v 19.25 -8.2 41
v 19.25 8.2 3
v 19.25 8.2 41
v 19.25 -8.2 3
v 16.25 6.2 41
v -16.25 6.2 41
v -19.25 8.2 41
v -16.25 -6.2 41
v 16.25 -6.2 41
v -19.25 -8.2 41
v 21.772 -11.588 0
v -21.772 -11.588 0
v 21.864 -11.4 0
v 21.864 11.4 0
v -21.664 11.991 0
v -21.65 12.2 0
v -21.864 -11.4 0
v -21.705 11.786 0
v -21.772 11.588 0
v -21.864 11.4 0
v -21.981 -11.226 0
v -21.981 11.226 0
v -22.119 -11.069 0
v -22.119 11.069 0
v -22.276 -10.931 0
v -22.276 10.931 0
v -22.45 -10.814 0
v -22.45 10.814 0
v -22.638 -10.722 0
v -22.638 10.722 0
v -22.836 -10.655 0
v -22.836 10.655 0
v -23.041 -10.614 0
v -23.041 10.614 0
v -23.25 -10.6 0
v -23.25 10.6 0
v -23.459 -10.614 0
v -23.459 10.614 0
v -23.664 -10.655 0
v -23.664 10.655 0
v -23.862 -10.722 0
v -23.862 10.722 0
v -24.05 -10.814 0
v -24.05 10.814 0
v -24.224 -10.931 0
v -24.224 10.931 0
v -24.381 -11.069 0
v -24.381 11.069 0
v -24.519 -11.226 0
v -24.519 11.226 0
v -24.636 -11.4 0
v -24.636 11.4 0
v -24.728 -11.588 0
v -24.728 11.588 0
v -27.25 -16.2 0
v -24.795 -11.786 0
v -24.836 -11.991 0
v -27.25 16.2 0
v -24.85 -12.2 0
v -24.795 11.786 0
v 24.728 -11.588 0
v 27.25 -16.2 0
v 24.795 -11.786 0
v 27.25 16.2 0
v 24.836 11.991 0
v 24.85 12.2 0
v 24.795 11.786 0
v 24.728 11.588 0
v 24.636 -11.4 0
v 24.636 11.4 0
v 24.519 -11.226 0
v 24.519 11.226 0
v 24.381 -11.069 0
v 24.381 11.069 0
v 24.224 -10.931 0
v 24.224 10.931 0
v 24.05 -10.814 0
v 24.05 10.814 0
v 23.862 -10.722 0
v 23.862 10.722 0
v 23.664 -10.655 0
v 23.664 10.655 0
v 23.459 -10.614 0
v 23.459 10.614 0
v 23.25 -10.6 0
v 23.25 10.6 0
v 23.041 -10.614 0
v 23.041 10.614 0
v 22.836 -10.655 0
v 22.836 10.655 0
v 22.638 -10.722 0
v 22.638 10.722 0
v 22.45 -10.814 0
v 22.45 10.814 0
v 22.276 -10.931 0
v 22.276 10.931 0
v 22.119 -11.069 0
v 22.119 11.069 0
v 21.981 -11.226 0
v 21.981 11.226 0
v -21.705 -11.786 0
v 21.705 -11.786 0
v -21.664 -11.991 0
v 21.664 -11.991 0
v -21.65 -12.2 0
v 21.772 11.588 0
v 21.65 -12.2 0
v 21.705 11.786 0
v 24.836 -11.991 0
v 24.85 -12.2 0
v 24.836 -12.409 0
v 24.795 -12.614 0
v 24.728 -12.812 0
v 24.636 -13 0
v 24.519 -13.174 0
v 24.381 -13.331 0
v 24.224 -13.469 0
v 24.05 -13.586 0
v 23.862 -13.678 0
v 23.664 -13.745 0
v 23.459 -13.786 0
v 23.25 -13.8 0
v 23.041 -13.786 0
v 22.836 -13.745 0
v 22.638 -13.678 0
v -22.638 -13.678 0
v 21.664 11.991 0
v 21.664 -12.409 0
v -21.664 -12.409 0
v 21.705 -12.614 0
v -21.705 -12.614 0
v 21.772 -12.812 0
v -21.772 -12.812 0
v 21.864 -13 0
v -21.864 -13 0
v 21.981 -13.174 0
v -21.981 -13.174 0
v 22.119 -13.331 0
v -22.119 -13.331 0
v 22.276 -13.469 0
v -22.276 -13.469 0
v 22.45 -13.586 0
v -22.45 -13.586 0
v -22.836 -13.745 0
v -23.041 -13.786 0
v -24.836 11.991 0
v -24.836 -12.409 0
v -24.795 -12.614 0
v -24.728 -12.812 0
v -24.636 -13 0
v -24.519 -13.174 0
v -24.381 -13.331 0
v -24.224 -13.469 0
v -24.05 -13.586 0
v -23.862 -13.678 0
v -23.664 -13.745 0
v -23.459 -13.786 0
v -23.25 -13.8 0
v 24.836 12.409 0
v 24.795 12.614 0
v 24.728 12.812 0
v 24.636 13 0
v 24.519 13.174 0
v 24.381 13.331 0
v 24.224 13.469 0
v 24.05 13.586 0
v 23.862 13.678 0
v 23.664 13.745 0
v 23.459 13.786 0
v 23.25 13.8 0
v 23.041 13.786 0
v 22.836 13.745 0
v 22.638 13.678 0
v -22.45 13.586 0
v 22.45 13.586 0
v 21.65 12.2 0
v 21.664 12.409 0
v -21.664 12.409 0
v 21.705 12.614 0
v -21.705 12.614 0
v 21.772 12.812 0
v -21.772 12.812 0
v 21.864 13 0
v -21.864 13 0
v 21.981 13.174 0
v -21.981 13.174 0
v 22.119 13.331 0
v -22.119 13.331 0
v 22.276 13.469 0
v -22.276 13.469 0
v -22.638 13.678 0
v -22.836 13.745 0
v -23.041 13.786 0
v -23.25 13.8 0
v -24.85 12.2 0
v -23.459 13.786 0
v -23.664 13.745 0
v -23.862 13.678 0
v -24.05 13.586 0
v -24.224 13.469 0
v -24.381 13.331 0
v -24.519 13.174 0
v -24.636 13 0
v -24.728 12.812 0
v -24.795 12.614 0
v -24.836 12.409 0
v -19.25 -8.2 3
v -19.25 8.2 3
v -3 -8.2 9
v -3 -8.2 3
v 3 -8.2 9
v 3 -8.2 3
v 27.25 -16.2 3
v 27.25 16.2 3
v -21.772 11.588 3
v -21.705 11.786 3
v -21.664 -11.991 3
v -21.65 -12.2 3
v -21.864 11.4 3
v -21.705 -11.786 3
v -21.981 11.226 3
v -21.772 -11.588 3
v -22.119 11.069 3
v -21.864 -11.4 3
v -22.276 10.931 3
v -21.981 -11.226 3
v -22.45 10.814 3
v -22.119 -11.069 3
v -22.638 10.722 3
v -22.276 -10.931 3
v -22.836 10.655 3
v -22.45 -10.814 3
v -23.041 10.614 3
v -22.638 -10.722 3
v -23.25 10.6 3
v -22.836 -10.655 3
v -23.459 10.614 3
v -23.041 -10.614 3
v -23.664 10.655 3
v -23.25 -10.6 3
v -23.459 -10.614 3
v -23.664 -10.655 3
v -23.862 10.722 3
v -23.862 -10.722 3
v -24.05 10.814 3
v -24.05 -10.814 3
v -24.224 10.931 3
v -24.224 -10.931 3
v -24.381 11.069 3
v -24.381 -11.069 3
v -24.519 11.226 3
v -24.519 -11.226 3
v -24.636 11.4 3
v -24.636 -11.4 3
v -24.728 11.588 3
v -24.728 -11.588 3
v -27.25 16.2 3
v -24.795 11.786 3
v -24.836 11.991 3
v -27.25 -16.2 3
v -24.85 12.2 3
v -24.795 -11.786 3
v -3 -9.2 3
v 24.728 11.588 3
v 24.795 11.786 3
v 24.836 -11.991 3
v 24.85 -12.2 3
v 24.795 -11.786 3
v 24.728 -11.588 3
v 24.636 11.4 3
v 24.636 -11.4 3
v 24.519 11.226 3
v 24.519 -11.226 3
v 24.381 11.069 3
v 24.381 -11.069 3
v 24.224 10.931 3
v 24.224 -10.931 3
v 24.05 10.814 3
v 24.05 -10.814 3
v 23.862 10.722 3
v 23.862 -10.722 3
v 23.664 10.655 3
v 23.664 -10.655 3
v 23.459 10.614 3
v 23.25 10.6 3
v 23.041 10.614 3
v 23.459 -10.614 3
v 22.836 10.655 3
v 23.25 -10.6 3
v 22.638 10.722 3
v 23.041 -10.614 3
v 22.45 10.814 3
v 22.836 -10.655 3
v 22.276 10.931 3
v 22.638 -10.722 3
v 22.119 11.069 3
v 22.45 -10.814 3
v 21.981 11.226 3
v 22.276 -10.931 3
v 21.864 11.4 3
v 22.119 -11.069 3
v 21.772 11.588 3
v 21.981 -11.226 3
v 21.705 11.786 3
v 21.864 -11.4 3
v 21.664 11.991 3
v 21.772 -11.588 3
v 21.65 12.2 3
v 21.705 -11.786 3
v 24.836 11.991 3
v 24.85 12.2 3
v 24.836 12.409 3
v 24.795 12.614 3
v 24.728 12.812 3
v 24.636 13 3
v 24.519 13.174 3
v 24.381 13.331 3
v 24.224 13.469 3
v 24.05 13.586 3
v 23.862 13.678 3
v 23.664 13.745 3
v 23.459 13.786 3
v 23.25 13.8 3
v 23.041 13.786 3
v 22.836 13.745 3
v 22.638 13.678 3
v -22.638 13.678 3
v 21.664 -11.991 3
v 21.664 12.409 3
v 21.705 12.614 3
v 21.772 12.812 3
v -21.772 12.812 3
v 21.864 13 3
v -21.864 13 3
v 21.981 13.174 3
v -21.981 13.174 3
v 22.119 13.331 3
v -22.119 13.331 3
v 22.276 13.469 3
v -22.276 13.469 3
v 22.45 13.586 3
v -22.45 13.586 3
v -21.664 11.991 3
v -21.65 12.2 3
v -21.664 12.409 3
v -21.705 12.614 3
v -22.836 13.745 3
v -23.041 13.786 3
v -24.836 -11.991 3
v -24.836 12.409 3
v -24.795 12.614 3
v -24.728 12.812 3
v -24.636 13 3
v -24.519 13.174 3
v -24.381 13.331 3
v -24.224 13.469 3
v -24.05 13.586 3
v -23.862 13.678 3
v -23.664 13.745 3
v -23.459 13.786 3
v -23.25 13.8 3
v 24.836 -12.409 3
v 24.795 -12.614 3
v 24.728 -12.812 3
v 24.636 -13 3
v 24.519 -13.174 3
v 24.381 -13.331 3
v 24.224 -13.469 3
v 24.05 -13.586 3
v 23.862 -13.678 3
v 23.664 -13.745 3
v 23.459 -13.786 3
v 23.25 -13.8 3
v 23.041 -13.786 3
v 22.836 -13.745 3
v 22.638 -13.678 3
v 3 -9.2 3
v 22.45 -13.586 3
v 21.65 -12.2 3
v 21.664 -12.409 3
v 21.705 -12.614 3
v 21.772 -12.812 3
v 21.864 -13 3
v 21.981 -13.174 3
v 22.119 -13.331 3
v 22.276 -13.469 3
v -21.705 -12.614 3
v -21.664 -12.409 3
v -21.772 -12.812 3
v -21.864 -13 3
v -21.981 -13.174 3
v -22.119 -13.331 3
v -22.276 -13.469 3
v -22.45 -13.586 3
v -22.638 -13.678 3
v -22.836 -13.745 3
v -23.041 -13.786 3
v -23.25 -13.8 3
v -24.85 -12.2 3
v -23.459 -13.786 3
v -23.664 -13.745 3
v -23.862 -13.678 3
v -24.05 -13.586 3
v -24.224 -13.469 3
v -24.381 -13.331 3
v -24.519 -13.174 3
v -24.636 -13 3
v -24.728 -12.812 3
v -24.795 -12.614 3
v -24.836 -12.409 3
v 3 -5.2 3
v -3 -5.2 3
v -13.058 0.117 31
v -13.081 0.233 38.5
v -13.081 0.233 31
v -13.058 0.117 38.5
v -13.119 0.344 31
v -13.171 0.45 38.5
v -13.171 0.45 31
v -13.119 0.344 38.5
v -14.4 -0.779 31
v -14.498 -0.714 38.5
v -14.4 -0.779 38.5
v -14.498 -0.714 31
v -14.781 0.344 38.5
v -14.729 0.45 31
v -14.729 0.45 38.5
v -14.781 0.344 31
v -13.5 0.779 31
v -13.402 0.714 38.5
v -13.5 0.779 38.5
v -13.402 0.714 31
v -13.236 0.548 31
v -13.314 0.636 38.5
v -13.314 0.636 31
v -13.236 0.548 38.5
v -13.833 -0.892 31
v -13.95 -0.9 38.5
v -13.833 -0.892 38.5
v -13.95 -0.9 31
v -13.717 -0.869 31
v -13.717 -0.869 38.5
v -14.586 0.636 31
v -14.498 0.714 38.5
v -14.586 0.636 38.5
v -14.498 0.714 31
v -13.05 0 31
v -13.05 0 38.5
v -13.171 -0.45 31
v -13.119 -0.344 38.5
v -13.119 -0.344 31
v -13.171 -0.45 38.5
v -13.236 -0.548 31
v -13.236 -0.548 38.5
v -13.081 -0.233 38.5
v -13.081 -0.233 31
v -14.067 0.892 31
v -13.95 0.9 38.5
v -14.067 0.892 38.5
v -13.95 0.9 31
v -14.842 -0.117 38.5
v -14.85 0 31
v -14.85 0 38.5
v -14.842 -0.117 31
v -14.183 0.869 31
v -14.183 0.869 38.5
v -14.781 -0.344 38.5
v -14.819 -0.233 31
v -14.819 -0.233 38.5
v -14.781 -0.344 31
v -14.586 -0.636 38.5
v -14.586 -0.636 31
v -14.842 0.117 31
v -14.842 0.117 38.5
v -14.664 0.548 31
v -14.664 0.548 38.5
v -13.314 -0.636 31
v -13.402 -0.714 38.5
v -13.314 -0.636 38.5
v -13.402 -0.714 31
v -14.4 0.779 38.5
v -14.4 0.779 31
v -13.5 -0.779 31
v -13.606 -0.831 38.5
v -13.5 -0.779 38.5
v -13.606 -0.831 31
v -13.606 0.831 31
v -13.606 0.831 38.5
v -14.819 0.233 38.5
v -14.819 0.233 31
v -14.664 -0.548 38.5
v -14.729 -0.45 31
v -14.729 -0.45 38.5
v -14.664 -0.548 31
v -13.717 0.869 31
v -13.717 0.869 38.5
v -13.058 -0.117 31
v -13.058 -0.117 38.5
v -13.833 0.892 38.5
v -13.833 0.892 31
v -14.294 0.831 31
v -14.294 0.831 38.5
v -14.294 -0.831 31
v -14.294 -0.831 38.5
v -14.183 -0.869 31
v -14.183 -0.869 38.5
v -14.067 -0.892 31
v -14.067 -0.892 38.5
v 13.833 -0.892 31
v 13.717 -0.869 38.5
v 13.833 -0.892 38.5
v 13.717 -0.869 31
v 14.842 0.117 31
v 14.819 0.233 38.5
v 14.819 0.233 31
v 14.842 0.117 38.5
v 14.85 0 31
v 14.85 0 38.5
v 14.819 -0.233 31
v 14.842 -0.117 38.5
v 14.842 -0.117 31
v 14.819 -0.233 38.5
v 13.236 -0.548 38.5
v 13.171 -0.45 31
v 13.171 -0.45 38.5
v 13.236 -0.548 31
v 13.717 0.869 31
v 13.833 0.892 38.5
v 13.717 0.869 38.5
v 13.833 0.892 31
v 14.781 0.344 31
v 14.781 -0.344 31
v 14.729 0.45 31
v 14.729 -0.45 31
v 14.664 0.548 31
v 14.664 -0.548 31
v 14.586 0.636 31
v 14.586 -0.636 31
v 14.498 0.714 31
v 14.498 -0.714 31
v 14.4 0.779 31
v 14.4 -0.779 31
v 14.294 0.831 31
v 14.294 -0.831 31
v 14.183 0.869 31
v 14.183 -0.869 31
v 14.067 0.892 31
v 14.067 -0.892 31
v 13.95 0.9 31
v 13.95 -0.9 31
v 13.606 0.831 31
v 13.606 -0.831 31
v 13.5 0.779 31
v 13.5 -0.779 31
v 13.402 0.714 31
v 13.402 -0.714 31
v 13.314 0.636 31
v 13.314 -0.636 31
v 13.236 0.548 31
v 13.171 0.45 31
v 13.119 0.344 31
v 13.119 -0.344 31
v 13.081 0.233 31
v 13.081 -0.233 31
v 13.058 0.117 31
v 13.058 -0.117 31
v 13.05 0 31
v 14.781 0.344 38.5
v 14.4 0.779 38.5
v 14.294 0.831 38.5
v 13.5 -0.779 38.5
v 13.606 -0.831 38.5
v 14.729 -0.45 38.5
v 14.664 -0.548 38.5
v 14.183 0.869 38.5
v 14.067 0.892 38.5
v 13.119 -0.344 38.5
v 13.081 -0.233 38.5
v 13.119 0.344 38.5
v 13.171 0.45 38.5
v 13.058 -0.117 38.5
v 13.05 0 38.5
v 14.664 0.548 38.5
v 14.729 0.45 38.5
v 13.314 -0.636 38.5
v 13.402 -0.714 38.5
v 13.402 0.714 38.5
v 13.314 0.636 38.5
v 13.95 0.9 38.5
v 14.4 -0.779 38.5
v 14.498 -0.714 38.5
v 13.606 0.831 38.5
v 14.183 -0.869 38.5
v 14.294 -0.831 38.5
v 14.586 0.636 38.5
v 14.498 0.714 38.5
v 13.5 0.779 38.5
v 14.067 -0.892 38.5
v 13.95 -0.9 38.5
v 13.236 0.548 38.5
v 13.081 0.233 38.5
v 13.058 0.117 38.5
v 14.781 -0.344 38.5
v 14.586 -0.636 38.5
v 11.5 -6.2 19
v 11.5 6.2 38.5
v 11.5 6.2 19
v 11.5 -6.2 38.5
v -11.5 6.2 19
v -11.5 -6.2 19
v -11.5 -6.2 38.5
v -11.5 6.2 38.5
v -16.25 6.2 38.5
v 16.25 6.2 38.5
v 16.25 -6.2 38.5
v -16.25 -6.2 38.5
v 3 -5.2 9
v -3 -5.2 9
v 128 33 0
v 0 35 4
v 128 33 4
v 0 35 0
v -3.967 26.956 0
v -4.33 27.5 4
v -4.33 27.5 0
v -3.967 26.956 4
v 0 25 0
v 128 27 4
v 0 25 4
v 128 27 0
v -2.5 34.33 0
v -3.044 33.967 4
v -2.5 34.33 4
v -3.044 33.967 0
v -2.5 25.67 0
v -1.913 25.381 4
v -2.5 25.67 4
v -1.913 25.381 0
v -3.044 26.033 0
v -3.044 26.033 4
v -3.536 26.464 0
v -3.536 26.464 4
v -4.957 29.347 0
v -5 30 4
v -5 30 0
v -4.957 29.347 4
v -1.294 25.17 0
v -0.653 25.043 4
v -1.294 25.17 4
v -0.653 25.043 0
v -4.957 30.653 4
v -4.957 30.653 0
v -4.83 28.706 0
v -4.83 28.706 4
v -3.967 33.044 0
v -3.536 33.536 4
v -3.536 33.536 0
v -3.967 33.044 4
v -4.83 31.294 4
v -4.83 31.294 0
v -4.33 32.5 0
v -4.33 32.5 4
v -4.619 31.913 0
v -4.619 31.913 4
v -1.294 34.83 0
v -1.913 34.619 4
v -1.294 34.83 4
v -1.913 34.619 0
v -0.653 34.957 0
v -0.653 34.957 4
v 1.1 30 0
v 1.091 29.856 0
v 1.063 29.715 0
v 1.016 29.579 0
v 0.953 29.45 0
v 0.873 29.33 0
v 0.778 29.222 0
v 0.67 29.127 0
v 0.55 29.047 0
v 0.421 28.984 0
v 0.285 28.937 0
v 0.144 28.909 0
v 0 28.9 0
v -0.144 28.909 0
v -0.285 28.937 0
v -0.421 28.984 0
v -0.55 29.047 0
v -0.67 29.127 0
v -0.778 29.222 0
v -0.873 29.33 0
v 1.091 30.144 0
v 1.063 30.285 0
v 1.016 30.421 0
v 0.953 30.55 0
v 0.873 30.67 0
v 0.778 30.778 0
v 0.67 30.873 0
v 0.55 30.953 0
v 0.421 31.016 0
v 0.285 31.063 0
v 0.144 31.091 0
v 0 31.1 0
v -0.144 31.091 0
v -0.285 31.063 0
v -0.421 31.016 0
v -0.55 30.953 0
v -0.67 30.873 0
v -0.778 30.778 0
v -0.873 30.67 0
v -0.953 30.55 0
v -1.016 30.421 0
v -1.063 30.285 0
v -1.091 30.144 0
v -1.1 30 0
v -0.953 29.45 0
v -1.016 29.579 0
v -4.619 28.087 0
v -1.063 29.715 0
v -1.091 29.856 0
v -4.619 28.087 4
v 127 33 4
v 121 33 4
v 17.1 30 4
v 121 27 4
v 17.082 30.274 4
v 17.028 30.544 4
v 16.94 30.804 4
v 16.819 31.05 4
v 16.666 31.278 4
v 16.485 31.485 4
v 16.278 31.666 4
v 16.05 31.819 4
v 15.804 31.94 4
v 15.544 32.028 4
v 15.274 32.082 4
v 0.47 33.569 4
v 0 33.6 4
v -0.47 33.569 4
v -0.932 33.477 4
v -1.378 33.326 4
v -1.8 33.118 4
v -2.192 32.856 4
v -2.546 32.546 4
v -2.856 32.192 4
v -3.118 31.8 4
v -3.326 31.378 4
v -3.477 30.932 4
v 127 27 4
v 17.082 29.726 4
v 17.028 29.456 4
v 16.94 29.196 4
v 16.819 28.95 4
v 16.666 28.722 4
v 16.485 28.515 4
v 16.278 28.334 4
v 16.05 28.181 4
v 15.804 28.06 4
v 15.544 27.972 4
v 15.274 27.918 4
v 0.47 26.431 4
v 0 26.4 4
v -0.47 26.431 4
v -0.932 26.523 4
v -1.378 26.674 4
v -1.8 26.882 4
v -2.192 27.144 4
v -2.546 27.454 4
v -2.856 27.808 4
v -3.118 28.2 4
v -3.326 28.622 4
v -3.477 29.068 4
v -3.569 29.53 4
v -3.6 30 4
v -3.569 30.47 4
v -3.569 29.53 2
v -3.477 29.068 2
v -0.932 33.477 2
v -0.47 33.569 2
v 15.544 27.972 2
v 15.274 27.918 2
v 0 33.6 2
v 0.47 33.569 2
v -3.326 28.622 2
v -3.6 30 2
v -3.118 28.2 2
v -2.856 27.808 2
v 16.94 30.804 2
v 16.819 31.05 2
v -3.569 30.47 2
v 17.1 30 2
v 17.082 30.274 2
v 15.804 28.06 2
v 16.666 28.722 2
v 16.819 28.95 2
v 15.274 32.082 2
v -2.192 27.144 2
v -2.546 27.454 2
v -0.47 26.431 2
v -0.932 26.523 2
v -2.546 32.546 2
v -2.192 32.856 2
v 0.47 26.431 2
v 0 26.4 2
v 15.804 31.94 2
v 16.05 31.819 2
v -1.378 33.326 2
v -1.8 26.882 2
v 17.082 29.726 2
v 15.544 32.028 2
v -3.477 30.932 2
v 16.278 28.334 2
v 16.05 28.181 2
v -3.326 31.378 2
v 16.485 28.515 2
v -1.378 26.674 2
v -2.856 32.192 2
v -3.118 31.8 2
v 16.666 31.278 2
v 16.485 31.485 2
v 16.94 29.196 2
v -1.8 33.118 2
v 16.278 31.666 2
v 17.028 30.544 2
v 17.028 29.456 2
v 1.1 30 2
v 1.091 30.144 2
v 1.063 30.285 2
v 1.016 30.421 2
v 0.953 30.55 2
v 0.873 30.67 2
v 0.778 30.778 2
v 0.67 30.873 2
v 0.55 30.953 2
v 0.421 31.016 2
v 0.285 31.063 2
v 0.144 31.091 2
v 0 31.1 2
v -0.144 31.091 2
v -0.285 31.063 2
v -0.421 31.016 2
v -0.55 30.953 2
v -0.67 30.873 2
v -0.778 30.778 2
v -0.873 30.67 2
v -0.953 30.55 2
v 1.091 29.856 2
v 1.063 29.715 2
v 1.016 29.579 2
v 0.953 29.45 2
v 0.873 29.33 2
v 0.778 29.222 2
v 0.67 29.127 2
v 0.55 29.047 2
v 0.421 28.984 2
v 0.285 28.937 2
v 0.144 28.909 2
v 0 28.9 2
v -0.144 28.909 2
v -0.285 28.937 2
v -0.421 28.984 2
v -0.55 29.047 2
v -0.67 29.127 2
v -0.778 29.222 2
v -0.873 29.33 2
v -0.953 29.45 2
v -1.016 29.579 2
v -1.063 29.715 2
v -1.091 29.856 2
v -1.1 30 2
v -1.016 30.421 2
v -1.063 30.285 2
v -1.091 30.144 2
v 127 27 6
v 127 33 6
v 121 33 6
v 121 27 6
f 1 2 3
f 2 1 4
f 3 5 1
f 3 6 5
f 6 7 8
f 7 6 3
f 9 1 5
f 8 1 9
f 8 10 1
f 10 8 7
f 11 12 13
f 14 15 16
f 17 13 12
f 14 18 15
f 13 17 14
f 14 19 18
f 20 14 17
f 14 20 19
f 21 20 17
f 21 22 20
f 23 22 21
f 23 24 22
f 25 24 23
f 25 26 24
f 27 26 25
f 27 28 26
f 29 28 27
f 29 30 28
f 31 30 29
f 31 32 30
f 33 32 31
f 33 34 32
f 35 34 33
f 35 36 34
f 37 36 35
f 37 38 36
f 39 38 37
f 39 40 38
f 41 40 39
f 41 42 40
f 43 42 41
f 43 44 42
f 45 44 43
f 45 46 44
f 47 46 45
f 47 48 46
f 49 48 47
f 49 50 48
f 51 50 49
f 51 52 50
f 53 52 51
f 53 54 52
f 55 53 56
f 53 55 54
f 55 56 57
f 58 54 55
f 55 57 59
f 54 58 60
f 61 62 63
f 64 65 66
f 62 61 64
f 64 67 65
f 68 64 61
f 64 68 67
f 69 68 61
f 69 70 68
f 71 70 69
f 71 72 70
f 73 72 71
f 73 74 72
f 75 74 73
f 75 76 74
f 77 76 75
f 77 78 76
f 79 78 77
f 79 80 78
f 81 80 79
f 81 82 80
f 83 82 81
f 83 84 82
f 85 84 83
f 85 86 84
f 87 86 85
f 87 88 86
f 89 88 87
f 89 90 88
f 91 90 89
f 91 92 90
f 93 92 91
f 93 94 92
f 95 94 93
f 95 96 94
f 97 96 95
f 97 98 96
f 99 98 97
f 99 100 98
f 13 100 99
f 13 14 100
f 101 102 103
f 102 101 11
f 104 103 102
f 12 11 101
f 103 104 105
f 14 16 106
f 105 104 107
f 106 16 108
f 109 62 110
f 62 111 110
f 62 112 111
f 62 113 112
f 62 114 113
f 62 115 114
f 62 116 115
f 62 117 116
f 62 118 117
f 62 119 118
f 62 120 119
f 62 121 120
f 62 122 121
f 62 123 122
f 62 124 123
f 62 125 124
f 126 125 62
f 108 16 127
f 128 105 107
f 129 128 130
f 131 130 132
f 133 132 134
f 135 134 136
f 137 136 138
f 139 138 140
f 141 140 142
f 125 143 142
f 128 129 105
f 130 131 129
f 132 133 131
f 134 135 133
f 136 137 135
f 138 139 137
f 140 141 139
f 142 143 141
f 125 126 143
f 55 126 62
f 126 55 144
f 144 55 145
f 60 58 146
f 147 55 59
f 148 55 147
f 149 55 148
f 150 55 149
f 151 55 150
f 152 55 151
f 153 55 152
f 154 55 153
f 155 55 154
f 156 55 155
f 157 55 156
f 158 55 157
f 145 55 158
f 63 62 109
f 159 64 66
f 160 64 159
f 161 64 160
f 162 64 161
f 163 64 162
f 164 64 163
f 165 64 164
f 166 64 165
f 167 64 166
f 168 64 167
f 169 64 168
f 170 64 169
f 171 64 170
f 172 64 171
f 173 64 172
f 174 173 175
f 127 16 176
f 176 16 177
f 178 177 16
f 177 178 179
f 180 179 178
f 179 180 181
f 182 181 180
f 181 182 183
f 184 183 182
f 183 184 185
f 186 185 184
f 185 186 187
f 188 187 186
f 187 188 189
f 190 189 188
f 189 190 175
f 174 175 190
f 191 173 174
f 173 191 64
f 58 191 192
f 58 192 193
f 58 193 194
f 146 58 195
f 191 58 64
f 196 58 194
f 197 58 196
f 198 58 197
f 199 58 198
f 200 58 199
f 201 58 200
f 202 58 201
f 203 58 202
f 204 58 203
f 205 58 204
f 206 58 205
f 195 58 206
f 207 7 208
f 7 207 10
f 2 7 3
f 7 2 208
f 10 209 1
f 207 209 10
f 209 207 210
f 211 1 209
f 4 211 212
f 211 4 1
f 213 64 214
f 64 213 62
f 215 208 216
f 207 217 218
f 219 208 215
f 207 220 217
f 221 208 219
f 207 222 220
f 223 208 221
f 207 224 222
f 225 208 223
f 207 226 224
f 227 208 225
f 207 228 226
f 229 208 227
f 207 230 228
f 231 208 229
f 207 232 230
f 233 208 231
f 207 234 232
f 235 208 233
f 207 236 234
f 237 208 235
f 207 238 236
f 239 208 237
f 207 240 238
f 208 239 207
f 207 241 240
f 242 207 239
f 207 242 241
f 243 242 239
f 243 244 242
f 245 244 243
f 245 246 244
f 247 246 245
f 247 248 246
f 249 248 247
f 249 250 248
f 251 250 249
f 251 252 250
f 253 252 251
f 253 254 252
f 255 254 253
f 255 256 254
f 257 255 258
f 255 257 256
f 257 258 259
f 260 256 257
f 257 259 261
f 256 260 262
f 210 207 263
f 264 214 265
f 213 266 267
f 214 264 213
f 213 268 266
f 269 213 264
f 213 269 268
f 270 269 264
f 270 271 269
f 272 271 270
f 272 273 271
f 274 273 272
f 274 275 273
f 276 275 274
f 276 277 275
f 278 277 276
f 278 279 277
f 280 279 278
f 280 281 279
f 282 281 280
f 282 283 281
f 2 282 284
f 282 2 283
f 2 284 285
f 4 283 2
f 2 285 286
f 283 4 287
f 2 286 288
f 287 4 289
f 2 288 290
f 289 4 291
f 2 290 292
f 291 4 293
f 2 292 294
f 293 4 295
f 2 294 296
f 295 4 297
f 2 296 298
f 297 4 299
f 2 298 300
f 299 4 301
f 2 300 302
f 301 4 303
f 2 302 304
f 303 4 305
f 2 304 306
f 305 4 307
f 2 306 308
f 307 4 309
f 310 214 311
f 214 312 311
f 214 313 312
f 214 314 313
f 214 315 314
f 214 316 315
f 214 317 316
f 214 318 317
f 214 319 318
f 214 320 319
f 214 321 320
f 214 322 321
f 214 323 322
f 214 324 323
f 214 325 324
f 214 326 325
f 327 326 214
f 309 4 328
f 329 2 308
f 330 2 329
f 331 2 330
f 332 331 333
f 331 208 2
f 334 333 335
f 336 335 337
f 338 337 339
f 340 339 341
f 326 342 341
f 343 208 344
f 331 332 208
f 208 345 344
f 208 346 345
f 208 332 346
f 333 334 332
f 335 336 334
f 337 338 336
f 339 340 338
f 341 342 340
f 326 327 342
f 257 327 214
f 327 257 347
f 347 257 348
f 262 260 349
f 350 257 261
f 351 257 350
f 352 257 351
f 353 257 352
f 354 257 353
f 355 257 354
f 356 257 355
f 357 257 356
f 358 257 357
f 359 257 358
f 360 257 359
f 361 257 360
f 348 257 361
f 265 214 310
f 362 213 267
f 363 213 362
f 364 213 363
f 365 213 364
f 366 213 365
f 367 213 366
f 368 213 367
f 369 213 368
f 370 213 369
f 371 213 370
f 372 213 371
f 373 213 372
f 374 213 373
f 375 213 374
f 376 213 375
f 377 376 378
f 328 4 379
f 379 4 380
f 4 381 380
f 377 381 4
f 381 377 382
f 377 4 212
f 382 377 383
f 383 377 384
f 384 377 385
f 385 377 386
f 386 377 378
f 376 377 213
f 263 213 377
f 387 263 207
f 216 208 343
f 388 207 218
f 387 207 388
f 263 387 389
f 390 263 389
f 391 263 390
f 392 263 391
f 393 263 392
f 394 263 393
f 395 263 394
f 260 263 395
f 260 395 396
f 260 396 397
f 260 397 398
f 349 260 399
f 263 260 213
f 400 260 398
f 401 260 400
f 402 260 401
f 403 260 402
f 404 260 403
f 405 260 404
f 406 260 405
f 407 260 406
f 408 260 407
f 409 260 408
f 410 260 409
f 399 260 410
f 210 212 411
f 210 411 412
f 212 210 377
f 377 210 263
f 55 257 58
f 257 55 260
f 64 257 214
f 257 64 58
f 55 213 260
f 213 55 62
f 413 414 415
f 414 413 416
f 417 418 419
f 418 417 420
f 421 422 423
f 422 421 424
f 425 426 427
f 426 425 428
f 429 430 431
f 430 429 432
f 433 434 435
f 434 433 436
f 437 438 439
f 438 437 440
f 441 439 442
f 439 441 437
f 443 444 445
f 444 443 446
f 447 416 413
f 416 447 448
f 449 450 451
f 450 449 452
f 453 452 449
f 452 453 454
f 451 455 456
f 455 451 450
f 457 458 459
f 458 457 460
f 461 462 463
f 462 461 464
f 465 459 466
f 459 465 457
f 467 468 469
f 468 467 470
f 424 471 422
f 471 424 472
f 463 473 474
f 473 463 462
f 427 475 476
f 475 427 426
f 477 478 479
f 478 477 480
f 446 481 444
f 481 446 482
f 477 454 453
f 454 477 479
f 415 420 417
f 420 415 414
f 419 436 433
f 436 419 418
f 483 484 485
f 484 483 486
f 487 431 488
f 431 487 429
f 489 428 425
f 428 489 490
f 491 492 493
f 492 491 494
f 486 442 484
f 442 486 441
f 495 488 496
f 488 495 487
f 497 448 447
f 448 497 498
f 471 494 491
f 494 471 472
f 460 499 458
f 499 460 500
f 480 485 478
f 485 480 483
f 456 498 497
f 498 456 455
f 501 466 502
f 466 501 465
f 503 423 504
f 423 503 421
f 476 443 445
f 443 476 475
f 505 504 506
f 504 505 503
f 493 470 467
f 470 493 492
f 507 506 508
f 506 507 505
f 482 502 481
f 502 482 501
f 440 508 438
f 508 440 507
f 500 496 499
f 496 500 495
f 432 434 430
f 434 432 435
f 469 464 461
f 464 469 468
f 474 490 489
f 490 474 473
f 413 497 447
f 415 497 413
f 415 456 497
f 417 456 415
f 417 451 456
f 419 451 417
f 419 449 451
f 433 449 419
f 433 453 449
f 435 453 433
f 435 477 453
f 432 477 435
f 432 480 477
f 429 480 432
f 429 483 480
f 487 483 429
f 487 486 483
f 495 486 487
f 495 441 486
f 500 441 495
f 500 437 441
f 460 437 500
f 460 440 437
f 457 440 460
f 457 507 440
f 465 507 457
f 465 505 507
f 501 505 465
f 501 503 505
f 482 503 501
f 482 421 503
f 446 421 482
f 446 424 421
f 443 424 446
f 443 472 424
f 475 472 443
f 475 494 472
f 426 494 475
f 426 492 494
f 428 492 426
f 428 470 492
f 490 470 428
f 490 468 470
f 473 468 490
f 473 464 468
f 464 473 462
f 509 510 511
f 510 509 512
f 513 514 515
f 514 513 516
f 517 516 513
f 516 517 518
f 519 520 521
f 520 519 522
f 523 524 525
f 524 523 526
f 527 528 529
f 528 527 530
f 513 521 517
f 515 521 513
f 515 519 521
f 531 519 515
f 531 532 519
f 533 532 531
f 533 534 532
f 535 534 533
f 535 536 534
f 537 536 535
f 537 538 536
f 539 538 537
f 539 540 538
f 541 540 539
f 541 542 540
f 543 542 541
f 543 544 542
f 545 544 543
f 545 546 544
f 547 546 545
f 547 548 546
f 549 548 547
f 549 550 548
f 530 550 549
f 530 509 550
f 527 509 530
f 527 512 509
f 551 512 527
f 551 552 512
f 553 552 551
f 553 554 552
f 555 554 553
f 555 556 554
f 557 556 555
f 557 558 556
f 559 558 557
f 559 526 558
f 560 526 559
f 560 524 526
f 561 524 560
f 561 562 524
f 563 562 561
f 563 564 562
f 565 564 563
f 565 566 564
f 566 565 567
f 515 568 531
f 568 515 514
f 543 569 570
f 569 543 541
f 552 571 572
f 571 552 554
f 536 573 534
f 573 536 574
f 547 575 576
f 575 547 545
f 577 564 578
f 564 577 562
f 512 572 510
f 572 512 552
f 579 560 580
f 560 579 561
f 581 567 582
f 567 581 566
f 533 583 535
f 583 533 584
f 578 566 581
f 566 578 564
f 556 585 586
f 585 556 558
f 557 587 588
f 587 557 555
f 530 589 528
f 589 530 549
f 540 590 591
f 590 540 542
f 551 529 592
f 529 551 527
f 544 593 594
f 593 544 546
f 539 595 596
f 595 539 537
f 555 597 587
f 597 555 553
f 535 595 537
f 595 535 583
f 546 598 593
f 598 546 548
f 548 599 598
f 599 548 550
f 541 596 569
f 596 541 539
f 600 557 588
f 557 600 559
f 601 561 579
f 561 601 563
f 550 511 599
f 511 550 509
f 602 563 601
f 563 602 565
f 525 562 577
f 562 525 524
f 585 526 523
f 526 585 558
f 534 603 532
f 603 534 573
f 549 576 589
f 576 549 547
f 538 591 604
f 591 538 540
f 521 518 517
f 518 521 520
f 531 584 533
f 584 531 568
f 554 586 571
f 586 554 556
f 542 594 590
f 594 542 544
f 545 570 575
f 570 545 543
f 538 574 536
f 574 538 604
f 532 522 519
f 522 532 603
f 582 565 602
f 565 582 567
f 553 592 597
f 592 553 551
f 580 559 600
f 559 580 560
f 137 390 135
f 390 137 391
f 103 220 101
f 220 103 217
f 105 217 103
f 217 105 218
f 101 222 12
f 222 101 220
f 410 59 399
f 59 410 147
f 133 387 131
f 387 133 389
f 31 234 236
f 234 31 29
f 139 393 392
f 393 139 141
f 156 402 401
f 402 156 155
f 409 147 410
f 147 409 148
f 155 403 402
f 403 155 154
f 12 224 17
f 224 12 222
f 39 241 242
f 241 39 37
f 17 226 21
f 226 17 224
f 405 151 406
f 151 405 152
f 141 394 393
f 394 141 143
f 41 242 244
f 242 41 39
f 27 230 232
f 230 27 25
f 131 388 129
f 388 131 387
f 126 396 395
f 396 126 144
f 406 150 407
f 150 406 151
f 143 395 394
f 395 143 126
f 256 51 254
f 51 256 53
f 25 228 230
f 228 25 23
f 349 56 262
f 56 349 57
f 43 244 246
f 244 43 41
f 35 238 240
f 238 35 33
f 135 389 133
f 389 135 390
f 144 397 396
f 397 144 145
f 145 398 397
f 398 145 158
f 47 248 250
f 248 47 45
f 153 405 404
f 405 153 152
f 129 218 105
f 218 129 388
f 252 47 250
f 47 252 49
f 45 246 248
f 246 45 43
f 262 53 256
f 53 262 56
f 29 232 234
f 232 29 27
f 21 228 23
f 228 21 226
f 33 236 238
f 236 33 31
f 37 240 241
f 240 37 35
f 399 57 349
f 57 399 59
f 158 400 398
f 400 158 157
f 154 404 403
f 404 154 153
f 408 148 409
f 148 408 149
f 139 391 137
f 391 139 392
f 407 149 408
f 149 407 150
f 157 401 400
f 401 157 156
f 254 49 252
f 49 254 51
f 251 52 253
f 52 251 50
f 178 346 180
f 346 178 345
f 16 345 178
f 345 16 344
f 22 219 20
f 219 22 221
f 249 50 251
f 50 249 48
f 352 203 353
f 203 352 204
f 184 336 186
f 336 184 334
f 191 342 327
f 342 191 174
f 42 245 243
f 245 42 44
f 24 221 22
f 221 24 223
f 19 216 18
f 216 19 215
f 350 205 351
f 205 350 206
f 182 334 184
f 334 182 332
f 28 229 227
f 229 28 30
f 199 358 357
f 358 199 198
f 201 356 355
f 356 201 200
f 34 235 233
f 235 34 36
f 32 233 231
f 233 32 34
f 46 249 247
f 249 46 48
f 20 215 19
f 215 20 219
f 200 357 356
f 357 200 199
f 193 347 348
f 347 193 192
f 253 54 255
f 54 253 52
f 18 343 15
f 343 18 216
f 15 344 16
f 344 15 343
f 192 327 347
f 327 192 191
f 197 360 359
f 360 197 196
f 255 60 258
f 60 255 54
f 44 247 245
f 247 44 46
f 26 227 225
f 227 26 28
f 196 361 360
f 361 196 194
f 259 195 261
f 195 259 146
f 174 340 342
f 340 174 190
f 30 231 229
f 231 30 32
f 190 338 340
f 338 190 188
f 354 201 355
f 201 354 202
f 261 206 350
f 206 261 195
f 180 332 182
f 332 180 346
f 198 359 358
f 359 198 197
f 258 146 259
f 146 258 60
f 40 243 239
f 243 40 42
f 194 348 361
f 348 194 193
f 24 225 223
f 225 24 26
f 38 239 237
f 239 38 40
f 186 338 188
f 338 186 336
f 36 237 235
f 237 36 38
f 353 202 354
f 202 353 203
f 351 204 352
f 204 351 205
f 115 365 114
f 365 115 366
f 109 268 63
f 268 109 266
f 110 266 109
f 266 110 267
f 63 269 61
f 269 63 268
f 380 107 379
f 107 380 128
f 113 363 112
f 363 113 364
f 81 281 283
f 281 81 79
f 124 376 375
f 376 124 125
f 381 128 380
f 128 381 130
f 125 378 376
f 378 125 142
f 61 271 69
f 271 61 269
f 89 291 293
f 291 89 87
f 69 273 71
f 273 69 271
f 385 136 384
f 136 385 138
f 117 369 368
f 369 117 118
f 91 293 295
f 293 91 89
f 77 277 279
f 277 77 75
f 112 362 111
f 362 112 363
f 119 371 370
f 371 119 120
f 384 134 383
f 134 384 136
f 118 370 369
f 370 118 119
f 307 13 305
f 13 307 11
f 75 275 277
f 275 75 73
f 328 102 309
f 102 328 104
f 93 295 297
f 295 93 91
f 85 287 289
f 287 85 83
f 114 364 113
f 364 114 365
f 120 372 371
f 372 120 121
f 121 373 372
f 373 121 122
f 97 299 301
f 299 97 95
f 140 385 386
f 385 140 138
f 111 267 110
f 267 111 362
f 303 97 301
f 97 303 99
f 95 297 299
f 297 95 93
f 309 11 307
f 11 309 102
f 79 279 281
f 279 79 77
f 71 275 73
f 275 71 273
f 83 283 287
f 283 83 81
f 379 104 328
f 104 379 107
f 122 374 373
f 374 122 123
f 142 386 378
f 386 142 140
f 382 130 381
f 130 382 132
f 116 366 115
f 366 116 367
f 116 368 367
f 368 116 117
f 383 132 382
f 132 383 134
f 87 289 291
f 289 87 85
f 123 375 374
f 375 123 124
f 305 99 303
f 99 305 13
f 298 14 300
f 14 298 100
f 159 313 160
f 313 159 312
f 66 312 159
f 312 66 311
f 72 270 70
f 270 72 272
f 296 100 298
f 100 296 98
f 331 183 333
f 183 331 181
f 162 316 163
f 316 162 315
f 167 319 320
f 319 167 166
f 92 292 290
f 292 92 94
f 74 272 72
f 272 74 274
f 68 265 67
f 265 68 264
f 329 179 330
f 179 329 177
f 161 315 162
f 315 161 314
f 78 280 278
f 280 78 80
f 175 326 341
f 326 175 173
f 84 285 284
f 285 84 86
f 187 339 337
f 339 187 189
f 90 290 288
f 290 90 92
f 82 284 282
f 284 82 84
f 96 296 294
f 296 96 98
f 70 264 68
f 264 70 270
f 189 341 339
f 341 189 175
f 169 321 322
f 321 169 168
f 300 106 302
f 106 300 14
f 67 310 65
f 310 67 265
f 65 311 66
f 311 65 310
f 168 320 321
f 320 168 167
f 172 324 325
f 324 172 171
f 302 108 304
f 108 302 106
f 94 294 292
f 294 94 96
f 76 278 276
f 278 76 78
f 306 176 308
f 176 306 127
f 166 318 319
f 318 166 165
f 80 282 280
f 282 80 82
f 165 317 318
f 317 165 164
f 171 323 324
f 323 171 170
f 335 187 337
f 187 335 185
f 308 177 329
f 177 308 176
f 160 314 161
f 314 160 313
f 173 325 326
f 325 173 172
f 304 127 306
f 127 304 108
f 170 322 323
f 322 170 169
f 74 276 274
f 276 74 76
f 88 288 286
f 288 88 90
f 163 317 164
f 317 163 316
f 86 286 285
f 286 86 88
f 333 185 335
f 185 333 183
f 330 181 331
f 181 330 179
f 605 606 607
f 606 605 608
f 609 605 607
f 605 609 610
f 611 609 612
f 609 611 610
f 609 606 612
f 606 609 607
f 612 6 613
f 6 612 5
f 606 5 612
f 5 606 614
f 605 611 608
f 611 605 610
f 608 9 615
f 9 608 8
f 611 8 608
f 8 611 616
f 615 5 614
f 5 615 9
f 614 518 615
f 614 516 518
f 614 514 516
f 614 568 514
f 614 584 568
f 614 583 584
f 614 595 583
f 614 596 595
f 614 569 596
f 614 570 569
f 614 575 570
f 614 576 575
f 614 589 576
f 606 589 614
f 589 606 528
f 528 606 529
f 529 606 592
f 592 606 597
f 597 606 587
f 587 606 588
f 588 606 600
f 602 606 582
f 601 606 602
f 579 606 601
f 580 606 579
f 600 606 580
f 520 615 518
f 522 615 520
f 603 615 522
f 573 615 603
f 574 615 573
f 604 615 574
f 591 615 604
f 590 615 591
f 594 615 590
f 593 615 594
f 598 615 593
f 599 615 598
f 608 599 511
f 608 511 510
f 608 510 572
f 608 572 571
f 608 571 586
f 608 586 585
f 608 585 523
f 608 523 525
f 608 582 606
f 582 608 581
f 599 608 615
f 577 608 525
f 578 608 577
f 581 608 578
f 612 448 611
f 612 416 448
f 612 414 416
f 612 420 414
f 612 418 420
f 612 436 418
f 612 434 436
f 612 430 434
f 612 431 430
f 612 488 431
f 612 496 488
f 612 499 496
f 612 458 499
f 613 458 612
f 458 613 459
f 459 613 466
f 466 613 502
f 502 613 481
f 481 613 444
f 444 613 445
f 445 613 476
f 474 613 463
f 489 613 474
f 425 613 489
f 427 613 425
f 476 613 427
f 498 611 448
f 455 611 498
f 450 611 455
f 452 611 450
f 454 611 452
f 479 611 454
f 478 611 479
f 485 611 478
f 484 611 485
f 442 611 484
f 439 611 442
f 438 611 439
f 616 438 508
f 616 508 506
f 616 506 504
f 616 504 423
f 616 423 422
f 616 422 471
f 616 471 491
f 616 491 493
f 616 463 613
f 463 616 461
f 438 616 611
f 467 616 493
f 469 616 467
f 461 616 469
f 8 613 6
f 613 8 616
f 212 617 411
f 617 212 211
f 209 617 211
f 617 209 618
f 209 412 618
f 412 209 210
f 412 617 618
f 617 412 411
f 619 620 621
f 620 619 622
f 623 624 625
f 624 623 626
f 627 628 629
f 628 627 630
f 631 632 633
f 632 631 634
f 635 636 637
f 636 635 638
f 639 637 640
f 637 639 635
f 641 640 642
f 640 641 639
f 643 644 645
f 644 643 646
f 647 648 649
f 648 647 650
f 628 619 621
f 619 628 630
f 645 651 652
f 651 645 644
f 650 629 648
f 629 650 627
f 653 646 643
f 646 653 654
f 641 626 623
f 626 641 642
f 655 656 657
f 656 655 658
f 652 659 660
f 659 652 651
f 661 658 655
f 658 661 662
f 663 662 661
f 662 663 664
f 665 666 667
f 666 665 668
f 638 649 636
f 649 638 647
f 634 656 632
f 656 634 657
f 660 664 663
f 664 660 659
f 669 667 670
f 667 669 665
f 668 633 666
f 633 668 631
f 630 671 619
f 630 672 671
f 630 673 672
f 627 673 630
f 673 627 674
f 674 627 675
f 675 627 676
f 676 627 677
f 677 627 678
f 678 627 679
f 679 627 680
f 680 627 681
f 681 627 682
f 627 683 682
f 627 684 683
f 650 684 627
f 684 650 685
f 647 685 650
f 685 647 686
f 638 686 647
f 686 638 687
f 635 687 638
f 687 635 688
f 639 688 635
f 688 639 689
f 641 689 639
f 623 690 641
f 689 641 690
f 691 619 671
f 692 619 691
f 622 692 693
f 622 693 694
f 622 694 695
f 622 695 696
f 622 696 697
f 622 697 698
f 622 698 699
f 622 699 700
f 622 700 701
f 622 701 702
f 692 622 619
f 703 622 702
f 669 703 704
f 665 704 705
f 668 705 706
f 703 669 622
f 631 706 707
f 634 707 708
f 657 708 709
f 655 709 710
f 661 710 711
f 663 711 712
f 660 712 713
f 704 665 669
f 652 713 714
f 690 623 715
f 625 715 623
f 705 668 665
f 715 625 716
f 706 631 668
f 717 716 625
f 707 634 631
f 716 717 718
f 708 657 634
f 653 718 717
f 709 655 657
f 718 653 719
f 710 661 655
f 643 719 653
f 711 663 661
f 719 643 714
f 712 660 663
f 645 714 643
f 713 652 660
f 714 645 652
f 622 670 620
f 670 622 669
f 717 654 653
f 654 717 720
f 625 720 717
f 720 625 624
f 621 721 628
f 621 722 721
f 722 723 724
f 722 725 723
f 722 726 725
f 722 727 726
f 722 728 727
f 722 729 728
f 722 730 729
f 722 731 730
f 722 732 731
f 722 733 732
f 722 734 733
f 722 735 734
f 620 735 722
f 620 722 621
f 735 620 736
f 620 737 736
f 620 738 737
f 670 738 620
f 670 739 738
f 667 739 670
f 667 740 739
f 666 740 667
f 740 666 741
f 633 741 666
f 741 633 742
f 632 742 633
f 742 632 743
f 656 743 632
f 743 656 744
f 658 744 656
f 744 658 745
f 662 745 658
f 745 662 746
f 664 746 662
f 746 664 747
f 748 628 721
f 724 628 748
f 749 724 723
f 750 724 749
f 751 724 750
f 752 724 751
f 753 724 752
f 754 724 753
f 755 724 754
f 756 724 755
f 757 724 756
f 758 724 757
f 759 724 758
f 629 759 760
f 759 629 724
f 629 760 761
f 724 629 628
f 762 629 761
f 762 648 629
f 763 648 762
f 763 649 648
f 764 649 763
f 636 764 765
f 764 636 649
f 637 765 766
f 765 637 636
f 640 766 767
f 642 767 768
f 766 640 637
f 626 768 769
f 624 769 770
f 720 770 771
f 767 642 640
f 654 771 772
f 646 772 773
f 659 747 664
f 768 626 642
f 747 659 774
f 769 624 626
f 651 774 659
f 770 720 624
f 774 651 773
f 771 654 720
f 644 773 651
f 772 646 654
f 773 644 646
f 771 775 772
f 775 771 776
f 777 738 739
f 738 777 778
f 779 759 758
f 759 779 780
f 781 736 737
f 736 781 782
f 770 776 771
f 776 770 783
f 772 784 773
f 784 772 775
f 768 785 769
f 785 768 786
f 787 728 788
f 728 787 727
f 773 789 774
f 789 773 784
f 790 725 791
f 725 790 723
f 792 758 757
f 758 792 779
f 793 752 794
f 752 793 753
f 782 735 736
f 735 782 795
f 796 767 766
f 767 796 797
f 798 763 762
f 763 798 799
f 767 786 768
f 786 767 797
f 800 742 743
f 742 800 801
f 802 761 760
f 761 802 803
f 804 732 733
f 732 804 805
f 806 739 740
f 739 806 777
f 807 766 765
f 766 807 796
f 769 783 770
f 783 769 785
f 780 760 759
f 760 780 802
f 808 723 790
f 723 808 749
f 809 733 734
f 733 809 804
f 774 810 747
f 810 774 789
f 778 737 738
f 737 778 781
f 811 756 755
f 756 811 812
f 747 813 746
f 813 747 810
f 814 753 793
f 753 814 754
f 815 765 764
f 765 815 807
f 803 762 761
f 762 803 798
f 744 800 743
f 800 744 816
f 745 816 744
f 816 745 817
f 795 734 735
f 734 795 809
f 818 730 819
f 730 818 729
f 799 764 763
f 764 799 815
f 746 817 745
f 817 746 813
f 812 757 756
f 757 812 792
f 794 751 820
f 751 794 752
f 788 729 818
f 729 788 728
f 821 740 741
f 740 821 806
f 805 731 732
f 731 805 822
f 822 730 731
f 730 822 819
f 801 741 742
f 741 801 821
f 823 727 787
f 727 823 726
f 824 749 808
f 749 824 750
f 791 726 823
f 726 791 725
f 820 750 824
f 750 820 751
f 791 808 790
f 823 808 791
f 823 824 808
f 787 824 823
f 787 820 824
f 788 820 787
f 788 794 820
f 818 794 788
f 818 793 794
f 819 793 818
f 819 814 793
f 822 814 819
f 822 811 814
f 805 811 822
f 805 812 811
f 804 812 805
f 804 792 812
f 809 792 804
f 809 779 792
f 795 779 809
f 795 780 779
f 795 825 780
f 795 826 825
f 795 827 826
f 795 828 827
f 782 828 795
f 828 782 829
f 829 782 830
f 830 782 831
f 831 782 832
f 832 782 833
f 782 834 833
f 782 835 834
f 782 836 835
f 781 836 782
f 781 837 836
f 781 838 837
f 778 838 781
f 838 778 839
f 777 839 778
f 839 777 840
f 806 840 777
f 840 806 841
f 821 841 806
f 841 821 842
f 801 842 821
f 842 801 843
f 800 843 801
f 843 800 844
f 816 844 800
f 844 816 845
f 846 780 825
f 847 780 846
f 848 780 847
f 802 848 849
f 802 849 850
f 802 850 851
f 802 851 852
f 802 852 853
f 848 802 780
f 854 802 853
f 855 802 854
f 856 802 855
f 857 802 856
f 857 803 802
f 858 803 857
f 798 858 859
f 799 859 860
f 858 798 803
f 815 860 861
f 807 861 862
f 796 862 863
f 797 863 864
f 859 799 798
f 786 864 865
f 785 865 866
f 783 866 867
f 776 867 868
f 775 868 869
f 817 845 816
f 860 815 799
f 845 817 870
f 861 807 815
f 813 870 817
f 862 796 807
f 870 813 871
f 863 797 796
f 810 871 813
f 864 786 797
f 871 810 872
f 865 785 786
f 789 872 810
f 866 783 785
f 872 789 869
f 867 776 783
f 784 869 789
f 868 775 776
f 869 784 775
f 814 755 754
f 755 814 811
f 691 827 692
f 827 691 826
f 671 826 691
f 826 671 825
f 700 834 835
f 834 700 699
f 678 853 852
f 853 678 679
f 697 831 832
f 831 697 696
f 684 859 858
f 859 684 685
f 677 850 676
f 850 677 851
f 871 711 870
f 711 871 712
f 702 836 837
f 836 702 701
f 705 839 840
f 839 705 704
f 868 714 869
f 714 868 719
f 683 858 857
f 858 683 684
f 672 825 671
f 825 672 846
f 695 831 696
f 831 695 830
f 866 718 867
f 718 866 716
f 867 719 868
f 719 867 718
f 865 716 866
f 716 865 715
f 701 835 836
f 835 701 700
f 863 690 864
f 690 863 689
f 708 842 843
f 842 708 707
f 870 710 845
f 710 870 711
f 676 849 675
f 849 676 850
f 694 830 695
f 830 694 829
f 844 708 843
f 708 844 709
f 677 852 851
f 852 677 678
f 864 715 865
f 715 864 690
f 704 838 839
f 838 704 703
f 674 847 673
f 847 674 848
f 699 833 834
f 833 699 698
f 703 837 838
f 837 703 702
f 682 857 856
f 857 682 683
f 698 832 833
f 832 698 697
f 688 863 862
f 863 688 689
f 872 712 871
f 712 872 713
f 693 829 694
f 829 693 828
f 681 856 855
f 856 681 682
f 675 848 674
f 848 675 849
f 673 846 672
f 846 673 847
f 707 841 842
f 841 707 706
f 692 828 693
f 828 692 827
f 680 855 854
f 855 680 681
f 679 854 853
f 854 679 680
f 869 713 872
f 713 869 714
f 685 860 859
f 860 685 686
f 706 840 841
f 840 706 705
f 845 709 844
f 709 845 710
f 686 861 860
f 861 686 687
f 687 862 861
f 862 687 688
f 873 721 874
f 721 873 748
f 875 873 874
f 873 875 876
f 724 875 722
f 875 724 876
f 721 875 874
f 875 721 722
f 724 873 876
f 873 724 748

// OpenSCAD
// Barrier post for an SG90 micro servo + barrier arm (IoT Garage, osoba 2/4)
// Print: PLA, 0.2 mm layers, 20 % infill, no supports (post upright, arm flat).
// Arm lower edge ends up ~50 mm above the floor (see alati/kamera_kalkulator.py).
part = "all";          // "post" | "arm" | "all"
lane_width = 133;      // from nacrt/dimenzije.md
arm_height = 50;       // floor -> lower edge of the arm
wall = 2;
$fn = 48;

// SG90 body 22.8 x 12.2 x 22.5 mm, tabs 32.3 mm wide, shaft offset 5.9 mm from one end
sg_l = 23.0; sg_w = 12.4; sg_tabs = 32.5; tab_t = 2.5;
post_w = sg_w + 2 * wall; post_l = sg_tabs + 6;
post_h = arm_height - 9;   // horn + arm sit on top of the servo shaft

module post() {
    difference() {
        union() {
            translate([-post_l / 2, -post_w / 2, 0]) cube([post_l, post_w, post_h]);
            translate([-post_l / 2 - 8, -post_w / 2 - 8, 0]) cube([post_l + 16, post_w + 16, 3]); // foot
        }
        // servo pocket (servo pushed in from the top, tabs rest on the rim)
        translate([-sg_l / 2, -sg_w / 2, post_h - 22]) cube([sg_l, sg_w, 30]);
        translate([-sg_tabs / 2, -sg_w / 2, post_h - tab_t]) cube([sg_tabs, sg_w, 10]);
        // screw holes for the tabs
        for (x = [-sg_tabs / 2 + 2.3, sg_tabs / 2 - 2.3]) translate([x, 0, post_h - 10]) cylinder(d = 1.8, h = 12);
        // cable exit at the bottom
        translate([-3, -post_w / 2 - 1, 3]) cube([6, wall + 2, 6]);
        // foot screw holes
        for (x = [-post_l / 2 - 4, post_l / 2 + 4]) for (y = [-post_w / 2 - 4, post_w / 2 + 4])
            translate([x, y, -1]) cylinder(d = 3.2, h = 5);
    }
}

module arm() {
    len = lane_width - 6;
    difference() {
        union() {
            hull() {
                cylinder(d = 10, h = 4);
                translate([len, -3, 0]) cube([1, 6, 4]);
            }
        }
        // pocket for the single-arm servo horn (glue or screw it in)
        hull() { translate([0, 0, 2]) cylinder(d = 7.2, h = 3); translate([15, 0, 2]) cylinder(d = 4.2, h = 3); }
        translate([0, 0, -1]) cylinder(d = 2.2, h = 6);      // horn screw
    }
    // red stripes are painted / taped on later; small tip weight block
    translate([len - 6, -3, 4]) cube([6, 6, 2]);
}

if (part == "post" || part == "all") post();
if (part == "arm" || part == "all") translate([0, 30, 0]) arm();
